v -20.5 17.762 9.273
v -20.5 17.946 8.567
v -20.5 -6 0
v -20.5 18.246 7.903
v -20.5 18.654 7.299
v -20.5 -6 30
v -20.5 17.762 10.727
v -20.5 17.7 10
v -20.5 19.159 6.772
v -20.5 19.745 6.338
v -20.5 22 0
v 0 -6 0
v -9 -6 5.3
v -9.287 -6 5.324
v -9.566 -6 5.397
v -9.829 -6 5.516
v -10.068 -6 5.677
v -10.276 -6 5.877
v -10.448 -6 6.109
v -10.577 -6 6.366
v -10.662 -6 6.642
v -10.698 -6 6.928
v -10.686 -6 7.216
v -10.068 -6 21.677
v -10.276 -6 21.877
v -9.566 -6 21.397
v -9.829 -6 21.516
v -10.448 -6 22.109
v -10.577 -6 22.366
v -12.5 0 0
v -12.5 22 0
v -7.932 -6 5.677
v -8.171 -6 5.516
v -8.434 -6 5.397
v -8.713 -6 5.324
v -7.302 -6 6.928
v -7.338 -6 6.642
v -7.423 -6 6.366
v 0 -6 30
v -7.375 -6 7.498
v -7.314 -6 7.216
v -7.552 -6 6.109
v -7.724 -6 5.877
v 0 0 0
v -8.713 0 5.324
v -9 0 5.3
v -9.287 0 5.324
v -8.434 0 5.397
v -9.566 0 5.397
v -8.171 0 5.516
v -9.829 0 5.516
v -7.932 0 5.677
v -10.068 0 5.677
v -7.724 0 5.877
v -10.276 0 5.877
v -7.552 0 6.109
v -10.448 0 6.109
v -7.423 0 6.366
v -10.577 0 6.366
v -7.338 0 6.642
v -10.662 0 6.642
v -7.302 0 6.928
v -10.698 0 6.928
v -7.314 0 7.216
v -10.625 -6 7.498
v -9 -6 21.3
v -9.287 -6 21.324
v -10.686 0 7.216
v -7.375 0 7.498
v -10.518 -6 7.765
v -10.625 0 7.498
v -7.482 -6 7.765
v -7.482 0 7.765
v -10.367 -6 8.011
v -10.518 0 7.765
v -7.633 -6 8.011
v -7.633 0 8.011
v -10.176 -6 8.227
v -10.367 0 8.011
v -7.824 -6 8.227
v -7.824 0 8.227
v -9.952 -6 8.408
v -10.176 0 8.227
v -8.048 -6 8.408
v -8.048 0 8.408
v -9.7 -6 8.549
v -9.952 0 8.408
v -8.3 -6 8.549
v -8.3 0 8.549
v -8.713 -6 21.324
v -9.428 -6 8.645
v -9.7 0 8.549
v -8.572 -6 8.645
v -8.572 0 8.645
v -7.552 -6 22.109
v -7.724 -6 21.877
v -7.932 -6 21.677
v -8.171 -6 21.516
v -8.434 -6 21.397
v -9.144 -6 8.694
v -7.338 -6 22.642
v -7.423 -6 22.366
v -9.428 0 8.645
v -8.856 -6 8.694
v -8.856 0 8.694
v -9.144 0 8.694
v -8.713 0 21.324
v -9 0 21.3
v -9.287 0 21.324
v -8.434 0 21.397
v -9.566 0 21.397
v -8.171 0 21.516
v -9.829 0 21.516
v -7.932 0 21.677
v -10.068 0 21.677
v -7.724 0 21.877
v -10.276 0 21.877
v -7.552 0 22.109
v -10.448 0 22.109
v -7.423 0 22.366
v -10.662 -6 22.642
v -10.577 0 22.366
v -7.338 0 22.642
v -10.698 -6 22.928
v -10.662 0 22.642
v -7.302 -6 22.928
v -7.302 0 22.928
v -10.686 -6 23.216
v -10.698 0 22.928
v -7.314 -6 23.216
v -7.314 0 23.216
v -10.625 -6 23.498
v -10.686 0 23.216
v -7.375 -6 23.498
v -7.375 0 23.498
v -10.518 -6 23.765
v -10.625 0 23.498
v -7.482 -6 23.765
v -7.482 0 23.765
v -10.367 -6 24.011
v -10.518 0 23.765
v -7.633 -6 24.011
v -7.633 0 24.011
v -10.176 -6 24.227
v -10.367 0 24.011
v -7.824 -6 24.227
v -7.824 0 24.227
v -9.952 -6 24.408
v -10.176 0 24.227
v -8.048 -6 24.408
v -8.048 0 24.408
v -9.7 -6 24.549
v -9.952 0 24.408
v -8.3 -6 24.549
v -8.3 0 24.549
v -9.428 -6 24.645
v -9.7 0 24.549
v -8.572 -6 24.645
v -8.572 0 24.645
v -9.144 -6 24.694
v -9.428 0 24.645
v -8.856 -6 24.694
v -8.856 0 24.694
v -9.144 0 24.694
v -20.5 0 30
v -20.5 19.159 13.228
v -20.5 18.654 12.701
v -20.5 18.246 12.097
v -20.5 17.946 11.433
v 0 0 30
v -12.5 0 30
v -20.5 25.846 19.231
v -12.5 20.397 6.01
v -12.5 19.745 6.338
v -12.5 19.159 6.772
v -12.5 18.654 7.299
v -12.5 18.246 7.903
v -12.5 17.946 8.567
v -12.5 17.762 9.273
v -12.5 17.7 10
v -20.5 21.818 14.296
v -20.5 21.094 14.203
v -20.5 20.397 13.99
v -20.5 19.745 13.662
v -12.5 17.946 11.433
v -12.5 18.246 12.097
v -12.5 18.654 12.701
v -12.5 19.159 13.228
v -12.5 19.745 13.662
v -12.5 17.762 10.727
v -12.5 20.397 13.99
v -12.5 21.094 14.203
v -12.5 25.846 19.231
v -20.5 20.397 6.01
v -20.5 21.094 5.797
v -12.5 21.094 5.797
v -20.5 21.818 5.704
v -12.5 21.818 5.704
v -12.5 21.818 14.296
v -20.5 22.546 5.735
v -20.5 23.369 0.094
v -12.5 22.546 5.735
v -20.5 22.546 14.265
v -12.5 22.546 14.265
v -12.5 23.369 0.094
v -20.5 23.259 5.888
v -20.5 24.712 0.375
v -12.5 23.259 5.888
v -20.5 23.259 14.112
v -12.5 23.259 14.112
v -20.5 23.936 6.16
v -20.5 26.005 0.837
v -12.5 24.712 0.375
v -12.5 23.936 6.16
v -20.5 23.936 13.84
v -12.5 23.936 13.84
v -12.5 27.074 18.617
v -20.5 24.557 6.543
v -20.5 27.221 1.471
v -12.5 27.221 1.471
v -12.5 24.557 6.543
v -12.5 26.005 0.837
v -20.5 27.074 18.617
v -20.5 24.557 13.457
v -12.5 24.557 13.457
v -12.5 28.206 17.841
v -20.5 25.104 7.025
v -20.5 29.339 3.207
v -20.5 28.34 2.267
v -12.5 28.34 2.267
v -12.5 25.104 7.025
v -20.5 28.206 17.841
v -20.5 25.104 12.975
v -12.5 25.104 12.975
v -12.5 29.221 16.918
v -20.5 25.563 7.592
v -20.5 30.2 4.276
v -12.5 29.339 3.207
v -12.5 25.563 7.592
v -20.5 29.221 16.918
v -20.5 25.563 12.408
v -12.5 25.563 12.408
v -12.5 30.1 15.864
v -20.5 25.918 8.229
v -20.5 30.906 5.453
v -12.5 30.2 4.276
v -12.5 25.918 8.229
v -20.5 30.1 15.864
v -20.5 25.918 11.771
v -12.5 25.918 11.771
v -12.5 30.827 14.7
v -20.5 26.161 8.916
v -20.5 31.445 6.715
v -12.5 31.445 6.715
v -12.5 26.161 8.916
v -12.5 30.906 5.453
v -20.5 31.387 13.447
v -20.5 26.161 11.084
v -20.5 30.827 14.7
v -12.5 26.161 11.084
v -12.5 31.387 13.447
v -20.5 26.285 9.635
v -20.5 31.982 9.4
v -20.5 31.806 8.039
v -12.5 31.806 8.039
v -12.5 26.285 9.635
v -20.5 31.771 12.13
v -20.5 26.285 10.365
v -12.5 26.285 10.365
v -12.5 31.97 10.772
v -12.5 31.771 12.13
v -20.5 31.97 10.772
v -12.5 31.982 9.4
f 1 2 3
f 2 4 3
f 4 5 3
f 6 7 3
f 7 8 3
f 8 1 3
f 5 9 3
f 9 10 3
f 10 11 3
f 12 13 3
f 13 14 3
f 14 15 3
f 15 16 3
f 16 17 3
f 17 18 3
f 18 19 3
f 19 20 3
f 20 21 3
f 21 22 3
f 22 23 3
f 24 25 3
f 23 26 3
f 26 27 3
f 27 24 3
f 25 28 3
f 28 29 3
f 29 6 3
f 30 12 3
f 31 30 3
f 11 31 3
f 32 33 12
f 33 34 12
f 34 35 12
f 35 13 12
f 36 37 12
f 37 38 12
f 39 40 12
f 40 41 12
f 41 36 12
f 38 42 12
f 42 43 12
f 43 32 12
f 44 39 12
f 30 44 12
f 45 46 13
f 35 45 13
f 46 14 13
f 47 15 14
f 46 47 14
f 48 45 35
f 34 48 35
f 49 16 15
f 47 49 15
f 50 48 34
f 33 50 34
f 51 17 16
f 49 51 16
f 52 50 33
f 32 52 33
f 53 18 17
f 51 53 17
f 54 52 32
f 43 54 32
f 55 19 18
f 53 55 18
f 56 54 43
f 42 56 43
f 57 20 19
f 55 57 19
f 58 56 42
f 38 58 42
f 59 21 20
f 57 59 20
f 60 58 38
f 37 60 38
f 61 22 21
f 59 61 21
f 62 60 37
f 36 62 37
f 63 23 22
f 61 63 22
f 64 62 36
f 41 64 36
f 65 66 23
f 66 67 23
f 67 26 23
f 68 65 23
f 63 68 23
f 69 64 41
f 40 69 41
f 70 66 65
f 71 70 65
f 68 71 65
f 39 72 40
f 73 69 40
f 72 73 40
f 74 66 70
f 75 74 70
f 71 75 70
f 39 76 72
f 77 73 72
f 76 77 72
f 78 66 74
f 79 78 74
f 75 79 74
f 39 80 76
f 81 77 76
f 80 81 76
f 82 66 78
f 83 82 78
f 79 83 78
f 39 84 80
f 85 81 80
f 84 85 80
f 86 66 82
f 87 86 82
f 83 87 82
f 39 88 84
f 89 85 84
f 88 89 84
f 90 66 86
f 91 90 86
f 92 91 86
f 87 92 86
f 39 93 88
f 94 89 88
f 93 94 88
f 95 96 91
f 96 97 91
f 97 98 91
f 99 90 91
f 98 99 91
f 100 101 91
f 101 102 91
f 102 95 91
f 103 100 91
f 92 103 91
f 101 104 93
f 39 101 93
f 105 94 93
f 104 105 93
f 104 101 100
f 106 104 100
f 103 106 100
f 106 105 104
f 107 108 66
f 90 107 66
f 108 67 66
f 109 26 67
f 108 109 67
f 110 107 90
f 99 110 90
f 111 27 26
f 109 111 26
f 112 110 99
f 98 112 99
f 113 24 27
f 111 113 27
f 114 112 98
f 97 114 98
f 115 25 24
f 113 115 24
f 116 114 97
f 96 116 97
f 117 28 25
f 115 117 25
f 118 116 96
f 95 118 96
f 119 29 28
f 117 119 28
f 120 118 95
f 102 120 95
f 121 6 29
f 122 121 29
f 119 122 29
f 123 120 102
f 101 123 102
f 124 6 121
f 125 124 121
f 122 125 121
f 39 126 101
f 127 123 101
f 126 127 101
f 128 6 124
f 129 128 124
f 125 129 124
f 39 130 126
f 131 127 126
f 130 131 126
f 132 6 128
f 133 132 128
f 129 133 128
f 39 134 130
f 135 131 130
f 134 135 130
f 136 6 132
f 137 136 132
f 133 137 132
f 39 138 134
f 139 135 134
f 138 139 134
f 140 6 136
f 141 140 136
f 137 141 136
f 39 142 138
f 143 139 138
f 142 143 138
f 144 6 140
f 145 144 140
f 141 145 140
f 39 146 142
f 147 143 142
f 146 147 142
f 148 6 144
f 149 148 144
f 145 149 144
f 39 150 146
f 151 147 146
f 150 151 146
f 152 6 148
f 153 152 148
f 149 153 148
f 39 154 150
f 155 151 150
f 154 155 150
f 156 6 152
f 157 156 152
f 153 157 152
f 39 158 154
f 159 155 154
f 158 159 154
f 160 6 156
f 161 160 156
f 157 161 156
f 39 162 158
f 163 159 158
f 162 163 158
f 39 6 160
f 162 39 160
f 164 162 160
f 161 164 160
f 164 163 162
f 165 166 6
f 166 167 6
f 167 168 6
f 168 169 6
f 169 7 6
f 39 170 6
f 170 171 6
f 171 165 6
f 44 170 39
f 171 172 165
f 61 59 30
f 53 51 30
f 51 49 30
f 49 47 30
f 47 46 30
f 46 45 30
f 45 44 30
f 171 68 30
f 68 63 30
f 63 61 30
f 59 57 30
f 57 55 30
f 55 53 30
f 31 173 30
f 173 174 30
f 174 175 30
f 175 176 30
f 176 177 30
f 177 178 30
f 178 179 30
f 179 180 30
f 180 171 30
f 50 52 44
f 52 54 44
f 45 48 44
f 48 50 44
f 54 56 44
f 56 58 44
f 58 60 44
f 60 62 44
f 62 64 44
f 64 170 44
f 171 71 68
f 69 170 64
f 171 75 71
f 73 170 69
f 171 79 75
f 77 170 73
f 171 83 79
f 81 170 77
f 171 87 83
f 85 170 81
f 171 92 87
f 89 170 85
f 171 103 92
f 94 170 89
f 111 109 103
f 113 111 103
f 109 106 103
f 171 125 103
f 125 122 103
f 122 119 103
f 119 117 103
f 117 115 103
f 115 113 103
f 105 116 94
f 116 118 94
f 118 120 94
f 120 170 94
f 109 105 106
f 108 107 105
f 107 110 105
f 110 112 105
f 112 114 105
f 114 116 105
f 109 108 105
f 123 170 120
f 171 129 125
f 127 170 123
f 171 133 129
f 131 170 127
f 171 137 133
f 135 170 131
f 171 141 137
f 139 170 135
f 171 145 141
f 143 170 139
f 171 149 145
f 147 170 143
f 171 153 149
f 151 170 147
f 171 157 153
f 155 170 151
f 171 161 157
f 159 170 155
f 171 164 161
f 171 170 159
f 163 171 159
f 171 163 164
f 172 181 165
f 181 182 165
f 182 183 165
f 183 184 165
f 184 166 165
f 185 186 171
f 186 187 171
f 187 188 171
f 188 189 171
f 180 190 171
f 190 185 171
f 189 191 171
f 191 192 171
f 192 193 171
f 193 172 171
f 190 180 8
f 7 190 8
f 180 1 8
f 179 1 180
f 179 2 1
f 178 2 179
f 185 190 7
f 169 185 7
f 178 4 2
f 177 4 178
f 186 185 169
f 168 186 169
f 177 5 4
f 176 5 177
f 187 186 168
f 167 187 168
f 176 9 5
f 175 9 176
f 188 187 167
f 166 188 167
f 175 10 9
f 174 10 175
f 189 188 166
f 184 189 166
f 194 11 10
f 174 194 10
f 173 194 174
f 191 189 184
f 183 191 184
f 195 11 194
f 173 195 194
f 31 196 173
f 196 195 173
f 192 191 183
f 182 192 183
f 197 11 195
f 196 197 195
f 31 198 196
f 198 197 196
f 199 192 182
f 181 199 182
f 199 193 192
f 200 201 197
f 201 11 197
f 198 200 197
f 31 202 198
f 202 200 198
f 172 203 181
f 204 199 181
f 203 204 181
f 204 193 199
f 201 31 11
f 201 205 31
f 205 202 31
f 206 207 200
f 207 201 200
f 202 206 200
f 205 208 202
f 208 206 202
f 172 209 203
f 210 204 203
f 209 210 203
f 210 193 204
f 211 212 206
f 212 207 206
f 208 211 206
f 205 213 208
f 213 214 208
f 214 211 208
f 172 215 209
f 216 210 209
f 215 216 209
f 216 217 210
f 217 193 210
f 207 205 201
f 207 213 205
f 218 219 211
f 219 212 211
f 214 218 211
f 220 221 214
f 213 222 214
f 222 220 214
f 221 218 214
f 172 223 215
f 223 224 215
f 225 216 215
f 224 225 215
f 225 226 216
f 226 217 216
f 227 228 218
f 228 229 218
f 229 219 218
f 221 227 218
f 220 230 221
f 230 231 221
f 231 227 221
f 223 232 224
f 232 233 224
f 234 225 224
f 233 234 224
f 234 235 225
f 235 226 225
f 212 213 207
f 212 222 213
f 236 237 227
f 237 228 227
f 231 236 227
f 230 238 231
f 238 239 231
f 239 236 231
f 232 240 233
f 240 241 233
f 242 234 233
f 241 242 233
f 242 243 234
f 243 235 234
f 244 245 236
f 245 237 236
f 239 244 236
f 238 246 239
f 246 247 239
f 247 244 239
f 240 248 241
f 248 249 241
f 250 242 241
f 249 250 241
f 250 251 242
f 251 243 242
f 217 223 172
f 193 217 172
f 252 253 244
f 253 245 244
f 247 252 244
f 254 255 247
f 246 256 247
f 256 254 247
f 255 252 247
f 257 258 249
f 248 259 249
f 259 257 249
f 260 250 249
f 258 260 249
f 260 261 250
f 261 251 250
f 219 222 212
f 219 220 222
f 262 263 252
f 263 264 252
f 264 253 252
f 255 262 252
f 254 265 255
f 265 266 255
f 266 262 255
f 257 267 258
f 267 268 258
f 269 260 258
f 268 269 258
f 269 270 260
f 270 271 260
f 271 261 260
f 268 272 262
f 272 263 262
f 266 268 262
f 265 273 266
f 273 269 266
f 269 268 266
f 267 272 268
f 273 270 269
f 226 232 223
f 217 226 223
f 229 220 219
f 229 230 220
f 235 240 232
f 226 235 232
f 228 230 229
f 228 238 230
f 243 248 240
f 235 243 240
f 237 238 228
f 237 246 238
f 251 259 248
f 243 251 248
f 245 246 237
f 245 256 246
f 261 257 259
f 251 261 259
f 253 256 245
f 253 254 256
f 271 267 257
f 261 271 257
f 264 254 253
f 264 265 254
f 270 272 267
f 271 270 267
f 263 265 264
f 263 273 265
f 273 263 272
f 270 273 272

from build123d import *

# Parameters (mm, degrees)
SALIENTE_EXTRUIR1_DEPTH = 30
CROQUIS2_R              = 4.3
CORTAR_EXTRUIR1_DEPTH   = 21.5
CORTAR_EXTRUIR2_REACH   = 40
CROQUIS3_R              = 1.7


with BuildPart() as part:
    # Croquis1 → Saliente-Extruir1 (new body)
    with BuildSketch(Plane.XY):
        Polygon((0, 0), (-12.5, 0), (-12.5, 32), (-20.5, 32), (-20.5, -6), (0, -6), align=None)
    extrude(amount=SALIENTE_EXTRUIR1_DEPTH)

    # Croquis2 → Cortar-Extruir1 (cut, through all)
    with BuildSketch(Plane.ZY.offset(20.5)):
        with Locations((10, 22)):
            Circle(CROQUIS2_R)
        with BuildLine():
            Line((30, 0), (19.230769231, 25.846153846))
            ThreePointArc((19.230769231, 25.846153846), (8.038838649, 31.805806757), (0, 22))
            Line((0, 22), (0, 21))
            Line((0, 21), (-1, 21))
            Line((-1, 21), (-1, 33))
            Line((-1, 33), (31, 33))
            Line((31, 33), (31, 0))
            Line((31, 0), (30, 0))
        make_face()
    extrude(amount=-CORTAR_EXTRUIR1_DEPTH, mode=Mode.SUBTRACT)

    # Croquis3 → Cortar-Extruir2 (cut, up to next)
    with BuildSketch(Plane.XZ.offset(6), mode=Mode.PRIVATE) as cortar_extruir2_sk1:
        with Locations((-9, 23)):
            Circle(CROQUIS3_R)
    cortar_extruir2_tool1 = extrude(cortar_extruir2_sk1.sketch, amount=-CORTAR_EXTRUIR2_REACH, mode=Mode.PRIVATE) & part.part
    add(cortar_extruir2_tool1.solids().sort_by_distance((-9, -6, 23))[0], mode=Mode.SUBTRACT)
    # Croquis3 → Cortar-Extruir2 (cut, up to next)
    with BuildSketch(Plane.XZ.offset(6), mode=Mode.PRIVATE) as cortar_extruir2_sk2:
        with Locations((-9, 7)):
            Circle(CROQUIS3_R)
    cortar_extruir2_tool2 = extrude(cortar_extruir2_sk2.sketch, amount=-CORTAR_EXTRUIR2_REACH, mode=Mode.PRIVATE) & part.part
    add(cortar_extruir2_tool2.solids().sort_by_distance((-9, -6, 7))[0], mode=Mode.SUBTRACT)


solid = part.part
